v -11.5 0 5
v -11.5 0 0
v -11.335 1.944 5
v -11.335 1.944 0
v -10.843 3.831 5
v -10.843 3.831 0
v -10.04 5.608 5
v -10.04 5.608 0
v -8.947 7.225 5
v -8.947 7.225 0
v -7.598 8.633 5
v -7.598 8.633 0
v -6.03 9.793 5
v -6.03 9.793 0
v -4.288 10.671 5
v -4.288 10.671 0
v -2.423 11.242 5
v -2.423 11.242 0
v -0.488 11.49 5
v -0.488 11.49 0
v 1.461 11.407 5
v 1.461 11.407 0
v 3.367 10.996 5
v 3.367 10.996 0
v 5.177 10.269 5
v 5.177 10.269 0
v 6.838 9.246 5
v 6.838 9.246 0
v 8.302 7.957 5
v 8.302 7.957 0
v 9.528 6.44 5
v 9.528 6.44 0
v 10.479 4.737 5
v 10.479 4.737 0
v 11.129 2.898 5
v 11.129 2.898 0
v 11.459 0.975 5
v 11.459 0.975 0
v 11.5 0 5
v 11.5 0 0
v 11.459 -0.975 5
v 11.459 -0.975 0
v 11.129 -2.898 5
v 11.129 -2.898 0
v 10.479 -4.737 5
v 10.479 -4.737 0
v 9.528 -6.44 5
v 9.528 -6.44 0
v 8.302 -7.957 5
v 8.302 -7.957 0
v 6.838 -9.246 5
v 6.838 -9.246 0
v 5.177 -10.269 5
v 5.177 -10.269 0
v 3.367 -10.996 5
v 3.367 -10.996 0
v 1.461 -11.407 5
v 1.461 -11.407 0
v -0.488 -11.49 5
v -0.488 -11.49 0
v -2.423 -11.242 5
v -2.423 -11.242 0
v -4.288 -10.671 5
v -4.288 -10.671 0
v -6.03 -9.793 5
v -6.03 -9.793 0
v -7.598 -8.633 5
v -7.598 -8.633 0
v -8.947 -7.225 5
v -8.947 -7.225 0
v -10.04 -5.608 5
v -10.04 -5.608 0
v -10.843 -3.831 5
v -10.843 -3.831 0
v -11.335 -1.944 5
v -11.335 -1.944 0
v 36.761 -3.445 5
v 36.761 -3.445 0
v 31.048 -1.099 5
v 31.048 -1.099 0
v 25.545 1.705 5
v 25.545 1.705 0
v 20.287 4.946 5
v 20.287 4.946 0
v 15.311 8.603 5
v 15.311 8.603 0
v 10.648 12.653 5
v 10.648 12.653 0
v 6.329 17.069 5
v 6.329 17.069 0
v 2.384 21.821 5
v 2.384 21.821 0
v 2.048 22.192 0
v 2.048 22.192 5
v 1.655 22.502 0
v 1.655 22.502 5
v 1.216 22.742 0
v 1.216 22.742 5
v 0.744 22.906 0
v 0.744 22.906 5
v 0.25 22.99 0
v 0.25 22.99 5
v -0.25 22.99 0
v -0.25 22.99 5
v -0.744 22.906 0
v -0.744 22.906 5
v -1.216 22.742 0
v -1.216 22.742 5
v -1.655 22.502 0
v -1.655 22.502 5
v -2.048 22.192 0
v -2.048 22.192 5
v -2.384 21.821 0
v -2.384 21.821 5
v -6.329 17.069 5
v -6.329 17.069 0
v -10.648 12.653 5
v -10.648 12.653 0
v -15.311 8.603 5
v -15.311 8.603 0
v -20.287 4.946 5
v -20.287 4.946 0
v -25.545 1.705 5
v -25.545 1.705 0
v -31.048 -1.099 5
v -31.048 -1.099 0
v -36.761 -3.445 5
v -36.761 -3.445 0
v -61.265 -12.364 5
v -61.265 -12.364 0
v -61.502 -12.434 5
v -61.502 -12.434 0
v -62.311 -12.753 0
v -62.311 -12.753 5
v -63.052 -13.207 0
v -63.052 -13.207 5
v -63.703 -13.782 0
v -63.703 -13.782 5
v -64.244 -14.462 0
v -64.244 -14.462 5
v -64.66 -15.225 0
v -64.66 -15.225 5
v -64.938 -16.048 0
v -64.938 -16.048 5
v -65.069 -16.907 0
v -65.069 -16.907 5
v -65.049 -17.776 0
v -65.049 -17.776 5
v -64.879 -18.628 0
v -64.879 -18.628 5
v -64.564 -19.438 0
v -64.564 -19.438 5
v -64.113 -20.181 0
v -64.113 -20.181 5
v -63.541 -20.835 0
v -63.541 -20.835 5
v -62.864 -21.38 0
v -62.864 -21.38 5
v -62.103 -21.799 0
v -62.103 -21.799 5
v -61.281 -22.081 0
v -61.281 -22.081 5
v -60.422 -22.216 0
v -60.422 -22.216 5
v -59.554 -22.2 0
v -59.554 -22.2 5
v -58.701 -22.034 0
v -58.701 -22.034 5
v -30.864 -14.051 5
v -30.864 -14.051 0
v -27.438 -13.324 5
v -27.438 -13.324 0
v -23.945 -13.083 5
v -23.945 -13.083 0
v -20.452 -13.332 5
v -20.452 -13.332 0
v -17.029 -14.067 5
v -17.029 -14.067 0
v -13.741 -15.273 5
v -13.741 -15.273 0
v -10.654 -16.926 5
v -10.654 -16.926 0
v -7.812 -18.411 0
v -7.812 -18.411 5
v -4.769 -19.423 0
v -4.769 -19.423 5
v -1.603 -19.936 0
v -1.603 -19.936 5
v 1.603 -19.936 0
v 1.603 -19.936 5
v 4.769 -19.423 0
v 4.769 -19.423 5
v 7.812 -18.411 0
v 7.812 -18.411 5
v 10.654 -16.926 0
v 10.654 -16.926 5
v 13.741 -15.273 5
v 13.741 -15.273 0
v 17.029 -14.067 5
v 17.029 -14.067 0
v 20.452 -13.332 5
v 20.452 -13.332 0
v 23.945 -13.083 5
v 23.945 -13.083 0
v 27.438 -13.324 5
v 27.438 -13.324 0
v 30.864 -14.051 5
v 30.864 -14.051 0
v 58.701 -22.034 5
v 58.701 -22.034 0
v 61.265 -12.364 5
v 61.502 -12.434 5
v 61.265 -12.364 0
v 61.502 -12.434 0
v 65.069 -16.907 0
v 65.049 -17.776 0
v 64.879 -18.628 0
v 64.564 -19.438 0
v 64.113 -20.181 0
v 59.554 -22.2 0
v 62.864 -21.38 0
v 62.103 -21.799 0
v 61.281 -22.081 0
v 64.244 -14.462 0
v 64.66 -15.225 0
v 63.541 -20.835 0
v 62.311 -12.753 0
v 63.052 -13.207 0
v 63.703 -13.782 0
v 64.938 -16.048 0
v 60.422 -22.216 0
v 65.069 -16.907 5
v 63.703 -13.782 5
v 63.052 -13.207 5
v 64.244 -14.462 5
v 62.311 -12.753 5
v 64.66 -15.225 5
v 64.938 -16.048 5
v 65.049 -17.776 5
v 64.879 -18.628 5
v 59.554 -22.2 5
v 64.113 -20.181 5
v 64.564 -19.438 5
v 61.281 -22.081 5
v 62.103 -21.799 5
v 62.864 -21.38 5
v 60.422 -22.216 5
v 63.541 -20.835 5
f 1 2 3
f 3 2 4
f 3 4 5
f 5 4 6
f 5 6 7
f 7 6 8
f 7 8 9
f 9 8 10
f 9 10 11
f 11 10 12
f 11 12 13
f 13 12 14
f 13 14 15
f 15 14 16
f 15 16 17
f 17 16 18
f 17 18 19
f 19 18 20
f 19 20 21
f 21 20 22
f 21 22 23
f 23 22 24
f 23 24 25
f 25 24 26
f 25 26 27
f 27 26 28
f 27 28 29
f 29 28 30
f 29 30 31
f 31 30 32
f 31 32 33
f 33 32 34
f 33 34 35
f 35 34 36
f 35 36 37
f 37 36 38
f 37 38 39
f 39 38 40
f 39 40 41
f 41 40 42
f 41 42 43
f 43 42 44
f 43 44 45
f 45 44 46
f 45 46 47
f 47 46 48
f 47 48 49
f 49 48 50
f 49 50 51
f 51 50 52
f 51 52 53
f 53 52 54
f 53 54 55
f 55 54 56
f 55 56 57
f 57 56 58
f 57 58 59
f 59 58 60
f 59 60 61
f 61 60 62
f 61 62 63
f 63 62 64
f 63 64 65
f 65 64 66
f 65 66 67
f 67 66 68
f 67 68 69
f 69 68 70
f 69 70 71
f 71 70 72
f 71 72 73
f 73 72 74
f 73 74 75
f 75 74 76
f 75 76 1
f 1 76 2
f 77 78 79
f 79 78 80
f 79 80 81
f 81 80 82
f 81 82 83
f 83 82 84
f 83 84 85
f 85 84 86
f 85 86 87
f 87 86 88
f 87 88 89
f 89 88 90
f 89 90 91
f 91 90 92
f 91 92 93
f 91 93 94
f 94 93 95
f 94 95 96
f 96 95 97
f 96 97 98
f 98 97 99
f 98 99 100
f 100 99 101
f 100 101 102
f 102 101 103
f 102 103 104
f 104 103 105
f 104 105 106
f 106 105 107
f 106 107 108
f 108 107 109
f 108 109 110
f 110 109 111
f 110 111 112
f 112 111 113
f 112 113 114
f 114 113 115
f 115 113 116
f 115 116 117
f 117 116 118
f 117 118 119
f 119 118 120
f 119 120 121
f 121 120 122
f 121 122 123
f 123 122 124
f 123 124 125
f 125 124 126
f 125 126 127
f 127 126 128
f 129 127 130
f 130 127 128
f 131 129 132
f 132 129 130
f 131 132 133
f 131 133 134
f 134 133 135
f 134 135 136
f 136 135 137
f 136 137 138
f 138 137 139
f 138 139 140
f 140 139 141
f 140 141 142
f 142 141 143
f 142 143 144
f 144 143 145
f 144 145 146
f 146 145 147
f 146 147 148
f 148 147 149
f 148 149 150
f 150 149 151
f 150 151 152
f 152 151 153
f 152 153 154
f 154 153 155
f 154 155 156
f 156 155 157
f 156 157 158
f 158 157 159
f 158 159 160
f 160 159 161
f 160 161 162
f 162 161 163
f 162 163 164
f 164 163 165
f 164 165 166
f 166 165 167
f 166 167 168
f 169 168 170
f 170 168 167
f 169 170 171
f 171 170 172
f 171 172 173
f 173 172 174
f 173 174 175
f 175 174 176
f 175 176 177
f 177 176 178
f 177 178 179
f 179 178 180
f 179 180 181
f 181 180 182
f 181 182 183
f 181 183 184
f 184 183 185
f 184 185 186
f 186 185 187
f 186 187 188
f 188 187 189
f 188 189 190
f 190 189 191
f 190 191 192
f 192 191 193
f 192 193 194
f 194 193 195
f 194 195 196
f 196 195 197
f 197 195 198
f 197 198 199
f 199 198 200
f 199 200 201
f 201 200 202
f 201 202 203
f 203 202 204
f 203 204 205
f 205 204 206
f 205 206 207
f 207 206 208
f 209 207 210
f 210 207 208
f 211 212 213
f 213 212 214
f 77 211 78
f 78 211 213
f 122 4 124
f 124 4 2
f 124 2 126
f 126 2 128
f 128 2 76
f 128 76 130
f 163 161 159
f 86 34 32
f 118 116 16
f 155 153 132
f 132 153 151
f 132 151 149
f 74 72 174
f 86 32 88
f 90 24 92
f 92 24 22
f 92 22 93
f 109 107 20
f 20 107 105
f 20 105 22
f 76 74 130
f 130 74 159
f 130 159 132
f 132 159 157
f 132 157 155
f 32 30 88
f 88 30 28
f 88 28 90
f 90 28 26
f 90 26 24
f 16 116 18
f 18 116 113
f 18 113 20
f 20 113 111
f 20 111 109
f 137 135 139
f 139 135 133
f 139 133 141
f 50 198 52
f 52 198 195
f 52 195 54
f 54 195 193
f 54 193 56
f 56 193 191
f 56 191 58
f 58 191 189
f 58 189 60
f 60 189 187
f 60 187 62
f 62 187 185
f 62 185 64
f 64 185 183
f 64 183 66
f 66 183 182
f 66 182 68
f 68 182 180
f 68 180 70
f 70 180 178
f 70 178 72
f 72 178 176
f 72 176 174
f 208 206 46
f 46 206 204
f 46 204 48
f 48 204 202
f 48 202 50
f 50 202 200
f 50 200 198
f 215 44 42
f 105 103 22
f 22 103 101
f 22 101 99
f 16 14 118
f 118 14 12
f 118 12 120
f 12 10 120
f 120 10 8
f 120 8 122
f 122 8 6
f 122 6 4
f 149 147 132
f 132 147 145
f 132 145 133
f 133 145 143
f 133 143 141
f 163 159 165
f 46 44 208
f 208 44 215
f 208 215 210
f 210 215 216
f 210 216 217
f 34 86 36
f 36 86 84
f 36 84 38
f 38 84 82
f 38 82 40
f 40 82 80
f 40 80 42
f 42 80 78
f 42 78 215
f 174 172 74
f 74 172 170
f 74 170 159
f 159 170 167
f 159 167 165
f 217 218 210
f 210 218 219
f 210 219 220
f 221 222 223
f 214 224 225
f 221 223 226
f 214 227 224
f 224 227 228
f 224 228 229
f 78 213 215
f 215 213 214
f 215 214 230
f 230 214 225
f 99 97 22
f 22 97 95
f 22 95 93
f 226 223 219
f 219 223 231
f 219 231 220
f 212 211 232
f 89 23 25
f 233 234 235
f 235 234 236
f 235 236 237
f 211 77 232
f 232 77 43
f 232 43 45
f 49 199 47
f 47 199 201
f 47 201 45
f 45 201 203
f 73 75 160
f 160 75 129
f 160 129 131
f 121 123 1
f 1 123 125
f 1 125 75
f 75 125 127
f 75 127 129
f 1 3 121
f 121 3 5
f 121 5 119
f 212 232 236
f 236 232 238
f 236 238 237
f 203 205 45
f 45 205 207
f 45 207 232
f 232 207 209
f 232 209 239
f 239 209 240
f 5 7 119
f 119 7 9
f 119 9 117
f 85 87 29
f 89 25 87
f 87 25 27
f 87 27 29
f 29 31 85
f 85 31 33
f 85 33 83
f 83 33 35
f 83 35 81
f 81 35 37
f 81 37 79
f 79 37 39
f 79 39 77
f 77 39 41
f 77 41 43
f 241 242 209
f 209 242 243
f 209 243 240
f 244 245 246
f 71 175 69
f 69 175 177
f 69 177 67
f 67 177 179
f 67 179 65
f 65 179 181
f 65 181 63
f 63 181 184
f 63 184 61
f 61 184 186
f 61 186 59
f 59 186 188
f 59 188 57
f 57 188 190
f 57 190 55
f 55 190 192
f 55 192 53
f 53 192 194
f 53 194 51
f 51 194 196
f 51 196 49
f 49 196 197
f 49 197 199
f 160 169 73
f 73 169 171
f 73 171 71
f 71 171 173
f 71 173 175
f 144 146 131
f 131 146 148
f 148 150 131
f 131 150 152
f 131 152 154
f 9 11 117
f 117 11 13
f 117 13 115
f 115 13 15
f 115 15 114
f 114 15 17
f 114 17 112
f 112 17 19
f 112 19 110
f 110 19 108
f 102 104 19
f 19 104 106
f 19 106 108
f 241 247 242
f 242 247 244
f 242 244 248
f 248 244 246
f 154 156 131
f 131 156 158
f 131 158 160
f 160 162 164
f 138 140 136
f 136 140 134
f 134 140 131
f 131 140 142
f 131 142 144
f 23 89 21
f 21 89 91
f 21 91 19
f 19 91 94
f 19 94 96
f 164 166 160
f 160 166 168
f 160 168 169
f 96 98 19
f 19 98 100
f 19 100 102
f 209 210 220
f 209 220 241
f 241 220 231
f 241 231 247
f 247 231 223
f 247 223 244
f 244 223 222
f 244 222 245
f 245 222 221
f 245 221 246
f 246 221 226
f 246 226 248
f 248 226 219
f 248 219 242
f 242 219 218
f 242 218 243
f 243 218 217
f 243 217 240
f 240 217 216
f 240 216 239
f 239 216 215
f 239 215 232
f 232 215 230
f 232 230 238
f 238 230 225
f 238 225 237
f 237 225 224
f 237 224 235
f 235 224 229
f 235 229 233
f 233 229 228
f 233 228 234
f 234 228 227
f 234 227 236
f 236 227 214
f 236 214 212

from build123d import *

# Parameters (mm, degrees)
SKETCH1_R           = 11.5
BOSS_EXTRUDE2_DEPTH = 5


with BuildPart() as part:
    # Sketch1 → Boss-Extrude2 (new body)
    with BuildSketch(Plane.XY):
        with BuildLine():
            ThreePointArc((2.384173399, 21.820911092), (0, 23), (-2.384173399, 21.820911092))
            ThreePointArc((-2.384173399, 21.820911092), (-17.761952084, 6.72401264), (-36.761417585, -3.445192388))
            Line((-36.761417585, -3.445192388), (-61.264901468, -12.363731157))
            Line((-61.264901468, -12.363731157), (-61.502328705, -12.434243309))
            ThreePointArc((-61.502328705, -12.434243309), (-64.87860936, -18.628180071), (-58.700669217, -22.033643218))
            Line((-58.700669217, -22.033643218), (-30.863510665, -14.051466451))
            ThreePointArc((-30.863510665, -14.051466451), (-20.452273896, -13.332100428), (-10.654478564, -16.925781711))
            ThreePointArc((-10.654478564, -16.925781711), (0, -20), (10.654478564, -16.925781711))
            ThreePointArc((10.654478564, -16.925781711), (20.452273896, -13.332100428), (30.863510665, -14.051466451))
            Line((30.863510665, -14.051466451), (58.700669217, -22.033643218))
            ThreePointArc((58.700669217, -22.033643218), (64.87860936, -18.628180071), (61.502328705, -12.434243309))
            Line((61.502328705, -12.434243309), (61.264901468, -12.363731157))
            Line((61.264901468, -12.363731157), (36.761417585, -3.445192388))
            ThreePointArc((36.761417585, -3.445192388), (17.761952084, 6.72401264), (2.384173399, 21.820911092))
        make_face()
        Circle(SKETCH1_R, mode=Mode.SUBTRACT)
    extrude(amount=BOSS_EXTRUDE2_DEPTH)


solid = part.part
